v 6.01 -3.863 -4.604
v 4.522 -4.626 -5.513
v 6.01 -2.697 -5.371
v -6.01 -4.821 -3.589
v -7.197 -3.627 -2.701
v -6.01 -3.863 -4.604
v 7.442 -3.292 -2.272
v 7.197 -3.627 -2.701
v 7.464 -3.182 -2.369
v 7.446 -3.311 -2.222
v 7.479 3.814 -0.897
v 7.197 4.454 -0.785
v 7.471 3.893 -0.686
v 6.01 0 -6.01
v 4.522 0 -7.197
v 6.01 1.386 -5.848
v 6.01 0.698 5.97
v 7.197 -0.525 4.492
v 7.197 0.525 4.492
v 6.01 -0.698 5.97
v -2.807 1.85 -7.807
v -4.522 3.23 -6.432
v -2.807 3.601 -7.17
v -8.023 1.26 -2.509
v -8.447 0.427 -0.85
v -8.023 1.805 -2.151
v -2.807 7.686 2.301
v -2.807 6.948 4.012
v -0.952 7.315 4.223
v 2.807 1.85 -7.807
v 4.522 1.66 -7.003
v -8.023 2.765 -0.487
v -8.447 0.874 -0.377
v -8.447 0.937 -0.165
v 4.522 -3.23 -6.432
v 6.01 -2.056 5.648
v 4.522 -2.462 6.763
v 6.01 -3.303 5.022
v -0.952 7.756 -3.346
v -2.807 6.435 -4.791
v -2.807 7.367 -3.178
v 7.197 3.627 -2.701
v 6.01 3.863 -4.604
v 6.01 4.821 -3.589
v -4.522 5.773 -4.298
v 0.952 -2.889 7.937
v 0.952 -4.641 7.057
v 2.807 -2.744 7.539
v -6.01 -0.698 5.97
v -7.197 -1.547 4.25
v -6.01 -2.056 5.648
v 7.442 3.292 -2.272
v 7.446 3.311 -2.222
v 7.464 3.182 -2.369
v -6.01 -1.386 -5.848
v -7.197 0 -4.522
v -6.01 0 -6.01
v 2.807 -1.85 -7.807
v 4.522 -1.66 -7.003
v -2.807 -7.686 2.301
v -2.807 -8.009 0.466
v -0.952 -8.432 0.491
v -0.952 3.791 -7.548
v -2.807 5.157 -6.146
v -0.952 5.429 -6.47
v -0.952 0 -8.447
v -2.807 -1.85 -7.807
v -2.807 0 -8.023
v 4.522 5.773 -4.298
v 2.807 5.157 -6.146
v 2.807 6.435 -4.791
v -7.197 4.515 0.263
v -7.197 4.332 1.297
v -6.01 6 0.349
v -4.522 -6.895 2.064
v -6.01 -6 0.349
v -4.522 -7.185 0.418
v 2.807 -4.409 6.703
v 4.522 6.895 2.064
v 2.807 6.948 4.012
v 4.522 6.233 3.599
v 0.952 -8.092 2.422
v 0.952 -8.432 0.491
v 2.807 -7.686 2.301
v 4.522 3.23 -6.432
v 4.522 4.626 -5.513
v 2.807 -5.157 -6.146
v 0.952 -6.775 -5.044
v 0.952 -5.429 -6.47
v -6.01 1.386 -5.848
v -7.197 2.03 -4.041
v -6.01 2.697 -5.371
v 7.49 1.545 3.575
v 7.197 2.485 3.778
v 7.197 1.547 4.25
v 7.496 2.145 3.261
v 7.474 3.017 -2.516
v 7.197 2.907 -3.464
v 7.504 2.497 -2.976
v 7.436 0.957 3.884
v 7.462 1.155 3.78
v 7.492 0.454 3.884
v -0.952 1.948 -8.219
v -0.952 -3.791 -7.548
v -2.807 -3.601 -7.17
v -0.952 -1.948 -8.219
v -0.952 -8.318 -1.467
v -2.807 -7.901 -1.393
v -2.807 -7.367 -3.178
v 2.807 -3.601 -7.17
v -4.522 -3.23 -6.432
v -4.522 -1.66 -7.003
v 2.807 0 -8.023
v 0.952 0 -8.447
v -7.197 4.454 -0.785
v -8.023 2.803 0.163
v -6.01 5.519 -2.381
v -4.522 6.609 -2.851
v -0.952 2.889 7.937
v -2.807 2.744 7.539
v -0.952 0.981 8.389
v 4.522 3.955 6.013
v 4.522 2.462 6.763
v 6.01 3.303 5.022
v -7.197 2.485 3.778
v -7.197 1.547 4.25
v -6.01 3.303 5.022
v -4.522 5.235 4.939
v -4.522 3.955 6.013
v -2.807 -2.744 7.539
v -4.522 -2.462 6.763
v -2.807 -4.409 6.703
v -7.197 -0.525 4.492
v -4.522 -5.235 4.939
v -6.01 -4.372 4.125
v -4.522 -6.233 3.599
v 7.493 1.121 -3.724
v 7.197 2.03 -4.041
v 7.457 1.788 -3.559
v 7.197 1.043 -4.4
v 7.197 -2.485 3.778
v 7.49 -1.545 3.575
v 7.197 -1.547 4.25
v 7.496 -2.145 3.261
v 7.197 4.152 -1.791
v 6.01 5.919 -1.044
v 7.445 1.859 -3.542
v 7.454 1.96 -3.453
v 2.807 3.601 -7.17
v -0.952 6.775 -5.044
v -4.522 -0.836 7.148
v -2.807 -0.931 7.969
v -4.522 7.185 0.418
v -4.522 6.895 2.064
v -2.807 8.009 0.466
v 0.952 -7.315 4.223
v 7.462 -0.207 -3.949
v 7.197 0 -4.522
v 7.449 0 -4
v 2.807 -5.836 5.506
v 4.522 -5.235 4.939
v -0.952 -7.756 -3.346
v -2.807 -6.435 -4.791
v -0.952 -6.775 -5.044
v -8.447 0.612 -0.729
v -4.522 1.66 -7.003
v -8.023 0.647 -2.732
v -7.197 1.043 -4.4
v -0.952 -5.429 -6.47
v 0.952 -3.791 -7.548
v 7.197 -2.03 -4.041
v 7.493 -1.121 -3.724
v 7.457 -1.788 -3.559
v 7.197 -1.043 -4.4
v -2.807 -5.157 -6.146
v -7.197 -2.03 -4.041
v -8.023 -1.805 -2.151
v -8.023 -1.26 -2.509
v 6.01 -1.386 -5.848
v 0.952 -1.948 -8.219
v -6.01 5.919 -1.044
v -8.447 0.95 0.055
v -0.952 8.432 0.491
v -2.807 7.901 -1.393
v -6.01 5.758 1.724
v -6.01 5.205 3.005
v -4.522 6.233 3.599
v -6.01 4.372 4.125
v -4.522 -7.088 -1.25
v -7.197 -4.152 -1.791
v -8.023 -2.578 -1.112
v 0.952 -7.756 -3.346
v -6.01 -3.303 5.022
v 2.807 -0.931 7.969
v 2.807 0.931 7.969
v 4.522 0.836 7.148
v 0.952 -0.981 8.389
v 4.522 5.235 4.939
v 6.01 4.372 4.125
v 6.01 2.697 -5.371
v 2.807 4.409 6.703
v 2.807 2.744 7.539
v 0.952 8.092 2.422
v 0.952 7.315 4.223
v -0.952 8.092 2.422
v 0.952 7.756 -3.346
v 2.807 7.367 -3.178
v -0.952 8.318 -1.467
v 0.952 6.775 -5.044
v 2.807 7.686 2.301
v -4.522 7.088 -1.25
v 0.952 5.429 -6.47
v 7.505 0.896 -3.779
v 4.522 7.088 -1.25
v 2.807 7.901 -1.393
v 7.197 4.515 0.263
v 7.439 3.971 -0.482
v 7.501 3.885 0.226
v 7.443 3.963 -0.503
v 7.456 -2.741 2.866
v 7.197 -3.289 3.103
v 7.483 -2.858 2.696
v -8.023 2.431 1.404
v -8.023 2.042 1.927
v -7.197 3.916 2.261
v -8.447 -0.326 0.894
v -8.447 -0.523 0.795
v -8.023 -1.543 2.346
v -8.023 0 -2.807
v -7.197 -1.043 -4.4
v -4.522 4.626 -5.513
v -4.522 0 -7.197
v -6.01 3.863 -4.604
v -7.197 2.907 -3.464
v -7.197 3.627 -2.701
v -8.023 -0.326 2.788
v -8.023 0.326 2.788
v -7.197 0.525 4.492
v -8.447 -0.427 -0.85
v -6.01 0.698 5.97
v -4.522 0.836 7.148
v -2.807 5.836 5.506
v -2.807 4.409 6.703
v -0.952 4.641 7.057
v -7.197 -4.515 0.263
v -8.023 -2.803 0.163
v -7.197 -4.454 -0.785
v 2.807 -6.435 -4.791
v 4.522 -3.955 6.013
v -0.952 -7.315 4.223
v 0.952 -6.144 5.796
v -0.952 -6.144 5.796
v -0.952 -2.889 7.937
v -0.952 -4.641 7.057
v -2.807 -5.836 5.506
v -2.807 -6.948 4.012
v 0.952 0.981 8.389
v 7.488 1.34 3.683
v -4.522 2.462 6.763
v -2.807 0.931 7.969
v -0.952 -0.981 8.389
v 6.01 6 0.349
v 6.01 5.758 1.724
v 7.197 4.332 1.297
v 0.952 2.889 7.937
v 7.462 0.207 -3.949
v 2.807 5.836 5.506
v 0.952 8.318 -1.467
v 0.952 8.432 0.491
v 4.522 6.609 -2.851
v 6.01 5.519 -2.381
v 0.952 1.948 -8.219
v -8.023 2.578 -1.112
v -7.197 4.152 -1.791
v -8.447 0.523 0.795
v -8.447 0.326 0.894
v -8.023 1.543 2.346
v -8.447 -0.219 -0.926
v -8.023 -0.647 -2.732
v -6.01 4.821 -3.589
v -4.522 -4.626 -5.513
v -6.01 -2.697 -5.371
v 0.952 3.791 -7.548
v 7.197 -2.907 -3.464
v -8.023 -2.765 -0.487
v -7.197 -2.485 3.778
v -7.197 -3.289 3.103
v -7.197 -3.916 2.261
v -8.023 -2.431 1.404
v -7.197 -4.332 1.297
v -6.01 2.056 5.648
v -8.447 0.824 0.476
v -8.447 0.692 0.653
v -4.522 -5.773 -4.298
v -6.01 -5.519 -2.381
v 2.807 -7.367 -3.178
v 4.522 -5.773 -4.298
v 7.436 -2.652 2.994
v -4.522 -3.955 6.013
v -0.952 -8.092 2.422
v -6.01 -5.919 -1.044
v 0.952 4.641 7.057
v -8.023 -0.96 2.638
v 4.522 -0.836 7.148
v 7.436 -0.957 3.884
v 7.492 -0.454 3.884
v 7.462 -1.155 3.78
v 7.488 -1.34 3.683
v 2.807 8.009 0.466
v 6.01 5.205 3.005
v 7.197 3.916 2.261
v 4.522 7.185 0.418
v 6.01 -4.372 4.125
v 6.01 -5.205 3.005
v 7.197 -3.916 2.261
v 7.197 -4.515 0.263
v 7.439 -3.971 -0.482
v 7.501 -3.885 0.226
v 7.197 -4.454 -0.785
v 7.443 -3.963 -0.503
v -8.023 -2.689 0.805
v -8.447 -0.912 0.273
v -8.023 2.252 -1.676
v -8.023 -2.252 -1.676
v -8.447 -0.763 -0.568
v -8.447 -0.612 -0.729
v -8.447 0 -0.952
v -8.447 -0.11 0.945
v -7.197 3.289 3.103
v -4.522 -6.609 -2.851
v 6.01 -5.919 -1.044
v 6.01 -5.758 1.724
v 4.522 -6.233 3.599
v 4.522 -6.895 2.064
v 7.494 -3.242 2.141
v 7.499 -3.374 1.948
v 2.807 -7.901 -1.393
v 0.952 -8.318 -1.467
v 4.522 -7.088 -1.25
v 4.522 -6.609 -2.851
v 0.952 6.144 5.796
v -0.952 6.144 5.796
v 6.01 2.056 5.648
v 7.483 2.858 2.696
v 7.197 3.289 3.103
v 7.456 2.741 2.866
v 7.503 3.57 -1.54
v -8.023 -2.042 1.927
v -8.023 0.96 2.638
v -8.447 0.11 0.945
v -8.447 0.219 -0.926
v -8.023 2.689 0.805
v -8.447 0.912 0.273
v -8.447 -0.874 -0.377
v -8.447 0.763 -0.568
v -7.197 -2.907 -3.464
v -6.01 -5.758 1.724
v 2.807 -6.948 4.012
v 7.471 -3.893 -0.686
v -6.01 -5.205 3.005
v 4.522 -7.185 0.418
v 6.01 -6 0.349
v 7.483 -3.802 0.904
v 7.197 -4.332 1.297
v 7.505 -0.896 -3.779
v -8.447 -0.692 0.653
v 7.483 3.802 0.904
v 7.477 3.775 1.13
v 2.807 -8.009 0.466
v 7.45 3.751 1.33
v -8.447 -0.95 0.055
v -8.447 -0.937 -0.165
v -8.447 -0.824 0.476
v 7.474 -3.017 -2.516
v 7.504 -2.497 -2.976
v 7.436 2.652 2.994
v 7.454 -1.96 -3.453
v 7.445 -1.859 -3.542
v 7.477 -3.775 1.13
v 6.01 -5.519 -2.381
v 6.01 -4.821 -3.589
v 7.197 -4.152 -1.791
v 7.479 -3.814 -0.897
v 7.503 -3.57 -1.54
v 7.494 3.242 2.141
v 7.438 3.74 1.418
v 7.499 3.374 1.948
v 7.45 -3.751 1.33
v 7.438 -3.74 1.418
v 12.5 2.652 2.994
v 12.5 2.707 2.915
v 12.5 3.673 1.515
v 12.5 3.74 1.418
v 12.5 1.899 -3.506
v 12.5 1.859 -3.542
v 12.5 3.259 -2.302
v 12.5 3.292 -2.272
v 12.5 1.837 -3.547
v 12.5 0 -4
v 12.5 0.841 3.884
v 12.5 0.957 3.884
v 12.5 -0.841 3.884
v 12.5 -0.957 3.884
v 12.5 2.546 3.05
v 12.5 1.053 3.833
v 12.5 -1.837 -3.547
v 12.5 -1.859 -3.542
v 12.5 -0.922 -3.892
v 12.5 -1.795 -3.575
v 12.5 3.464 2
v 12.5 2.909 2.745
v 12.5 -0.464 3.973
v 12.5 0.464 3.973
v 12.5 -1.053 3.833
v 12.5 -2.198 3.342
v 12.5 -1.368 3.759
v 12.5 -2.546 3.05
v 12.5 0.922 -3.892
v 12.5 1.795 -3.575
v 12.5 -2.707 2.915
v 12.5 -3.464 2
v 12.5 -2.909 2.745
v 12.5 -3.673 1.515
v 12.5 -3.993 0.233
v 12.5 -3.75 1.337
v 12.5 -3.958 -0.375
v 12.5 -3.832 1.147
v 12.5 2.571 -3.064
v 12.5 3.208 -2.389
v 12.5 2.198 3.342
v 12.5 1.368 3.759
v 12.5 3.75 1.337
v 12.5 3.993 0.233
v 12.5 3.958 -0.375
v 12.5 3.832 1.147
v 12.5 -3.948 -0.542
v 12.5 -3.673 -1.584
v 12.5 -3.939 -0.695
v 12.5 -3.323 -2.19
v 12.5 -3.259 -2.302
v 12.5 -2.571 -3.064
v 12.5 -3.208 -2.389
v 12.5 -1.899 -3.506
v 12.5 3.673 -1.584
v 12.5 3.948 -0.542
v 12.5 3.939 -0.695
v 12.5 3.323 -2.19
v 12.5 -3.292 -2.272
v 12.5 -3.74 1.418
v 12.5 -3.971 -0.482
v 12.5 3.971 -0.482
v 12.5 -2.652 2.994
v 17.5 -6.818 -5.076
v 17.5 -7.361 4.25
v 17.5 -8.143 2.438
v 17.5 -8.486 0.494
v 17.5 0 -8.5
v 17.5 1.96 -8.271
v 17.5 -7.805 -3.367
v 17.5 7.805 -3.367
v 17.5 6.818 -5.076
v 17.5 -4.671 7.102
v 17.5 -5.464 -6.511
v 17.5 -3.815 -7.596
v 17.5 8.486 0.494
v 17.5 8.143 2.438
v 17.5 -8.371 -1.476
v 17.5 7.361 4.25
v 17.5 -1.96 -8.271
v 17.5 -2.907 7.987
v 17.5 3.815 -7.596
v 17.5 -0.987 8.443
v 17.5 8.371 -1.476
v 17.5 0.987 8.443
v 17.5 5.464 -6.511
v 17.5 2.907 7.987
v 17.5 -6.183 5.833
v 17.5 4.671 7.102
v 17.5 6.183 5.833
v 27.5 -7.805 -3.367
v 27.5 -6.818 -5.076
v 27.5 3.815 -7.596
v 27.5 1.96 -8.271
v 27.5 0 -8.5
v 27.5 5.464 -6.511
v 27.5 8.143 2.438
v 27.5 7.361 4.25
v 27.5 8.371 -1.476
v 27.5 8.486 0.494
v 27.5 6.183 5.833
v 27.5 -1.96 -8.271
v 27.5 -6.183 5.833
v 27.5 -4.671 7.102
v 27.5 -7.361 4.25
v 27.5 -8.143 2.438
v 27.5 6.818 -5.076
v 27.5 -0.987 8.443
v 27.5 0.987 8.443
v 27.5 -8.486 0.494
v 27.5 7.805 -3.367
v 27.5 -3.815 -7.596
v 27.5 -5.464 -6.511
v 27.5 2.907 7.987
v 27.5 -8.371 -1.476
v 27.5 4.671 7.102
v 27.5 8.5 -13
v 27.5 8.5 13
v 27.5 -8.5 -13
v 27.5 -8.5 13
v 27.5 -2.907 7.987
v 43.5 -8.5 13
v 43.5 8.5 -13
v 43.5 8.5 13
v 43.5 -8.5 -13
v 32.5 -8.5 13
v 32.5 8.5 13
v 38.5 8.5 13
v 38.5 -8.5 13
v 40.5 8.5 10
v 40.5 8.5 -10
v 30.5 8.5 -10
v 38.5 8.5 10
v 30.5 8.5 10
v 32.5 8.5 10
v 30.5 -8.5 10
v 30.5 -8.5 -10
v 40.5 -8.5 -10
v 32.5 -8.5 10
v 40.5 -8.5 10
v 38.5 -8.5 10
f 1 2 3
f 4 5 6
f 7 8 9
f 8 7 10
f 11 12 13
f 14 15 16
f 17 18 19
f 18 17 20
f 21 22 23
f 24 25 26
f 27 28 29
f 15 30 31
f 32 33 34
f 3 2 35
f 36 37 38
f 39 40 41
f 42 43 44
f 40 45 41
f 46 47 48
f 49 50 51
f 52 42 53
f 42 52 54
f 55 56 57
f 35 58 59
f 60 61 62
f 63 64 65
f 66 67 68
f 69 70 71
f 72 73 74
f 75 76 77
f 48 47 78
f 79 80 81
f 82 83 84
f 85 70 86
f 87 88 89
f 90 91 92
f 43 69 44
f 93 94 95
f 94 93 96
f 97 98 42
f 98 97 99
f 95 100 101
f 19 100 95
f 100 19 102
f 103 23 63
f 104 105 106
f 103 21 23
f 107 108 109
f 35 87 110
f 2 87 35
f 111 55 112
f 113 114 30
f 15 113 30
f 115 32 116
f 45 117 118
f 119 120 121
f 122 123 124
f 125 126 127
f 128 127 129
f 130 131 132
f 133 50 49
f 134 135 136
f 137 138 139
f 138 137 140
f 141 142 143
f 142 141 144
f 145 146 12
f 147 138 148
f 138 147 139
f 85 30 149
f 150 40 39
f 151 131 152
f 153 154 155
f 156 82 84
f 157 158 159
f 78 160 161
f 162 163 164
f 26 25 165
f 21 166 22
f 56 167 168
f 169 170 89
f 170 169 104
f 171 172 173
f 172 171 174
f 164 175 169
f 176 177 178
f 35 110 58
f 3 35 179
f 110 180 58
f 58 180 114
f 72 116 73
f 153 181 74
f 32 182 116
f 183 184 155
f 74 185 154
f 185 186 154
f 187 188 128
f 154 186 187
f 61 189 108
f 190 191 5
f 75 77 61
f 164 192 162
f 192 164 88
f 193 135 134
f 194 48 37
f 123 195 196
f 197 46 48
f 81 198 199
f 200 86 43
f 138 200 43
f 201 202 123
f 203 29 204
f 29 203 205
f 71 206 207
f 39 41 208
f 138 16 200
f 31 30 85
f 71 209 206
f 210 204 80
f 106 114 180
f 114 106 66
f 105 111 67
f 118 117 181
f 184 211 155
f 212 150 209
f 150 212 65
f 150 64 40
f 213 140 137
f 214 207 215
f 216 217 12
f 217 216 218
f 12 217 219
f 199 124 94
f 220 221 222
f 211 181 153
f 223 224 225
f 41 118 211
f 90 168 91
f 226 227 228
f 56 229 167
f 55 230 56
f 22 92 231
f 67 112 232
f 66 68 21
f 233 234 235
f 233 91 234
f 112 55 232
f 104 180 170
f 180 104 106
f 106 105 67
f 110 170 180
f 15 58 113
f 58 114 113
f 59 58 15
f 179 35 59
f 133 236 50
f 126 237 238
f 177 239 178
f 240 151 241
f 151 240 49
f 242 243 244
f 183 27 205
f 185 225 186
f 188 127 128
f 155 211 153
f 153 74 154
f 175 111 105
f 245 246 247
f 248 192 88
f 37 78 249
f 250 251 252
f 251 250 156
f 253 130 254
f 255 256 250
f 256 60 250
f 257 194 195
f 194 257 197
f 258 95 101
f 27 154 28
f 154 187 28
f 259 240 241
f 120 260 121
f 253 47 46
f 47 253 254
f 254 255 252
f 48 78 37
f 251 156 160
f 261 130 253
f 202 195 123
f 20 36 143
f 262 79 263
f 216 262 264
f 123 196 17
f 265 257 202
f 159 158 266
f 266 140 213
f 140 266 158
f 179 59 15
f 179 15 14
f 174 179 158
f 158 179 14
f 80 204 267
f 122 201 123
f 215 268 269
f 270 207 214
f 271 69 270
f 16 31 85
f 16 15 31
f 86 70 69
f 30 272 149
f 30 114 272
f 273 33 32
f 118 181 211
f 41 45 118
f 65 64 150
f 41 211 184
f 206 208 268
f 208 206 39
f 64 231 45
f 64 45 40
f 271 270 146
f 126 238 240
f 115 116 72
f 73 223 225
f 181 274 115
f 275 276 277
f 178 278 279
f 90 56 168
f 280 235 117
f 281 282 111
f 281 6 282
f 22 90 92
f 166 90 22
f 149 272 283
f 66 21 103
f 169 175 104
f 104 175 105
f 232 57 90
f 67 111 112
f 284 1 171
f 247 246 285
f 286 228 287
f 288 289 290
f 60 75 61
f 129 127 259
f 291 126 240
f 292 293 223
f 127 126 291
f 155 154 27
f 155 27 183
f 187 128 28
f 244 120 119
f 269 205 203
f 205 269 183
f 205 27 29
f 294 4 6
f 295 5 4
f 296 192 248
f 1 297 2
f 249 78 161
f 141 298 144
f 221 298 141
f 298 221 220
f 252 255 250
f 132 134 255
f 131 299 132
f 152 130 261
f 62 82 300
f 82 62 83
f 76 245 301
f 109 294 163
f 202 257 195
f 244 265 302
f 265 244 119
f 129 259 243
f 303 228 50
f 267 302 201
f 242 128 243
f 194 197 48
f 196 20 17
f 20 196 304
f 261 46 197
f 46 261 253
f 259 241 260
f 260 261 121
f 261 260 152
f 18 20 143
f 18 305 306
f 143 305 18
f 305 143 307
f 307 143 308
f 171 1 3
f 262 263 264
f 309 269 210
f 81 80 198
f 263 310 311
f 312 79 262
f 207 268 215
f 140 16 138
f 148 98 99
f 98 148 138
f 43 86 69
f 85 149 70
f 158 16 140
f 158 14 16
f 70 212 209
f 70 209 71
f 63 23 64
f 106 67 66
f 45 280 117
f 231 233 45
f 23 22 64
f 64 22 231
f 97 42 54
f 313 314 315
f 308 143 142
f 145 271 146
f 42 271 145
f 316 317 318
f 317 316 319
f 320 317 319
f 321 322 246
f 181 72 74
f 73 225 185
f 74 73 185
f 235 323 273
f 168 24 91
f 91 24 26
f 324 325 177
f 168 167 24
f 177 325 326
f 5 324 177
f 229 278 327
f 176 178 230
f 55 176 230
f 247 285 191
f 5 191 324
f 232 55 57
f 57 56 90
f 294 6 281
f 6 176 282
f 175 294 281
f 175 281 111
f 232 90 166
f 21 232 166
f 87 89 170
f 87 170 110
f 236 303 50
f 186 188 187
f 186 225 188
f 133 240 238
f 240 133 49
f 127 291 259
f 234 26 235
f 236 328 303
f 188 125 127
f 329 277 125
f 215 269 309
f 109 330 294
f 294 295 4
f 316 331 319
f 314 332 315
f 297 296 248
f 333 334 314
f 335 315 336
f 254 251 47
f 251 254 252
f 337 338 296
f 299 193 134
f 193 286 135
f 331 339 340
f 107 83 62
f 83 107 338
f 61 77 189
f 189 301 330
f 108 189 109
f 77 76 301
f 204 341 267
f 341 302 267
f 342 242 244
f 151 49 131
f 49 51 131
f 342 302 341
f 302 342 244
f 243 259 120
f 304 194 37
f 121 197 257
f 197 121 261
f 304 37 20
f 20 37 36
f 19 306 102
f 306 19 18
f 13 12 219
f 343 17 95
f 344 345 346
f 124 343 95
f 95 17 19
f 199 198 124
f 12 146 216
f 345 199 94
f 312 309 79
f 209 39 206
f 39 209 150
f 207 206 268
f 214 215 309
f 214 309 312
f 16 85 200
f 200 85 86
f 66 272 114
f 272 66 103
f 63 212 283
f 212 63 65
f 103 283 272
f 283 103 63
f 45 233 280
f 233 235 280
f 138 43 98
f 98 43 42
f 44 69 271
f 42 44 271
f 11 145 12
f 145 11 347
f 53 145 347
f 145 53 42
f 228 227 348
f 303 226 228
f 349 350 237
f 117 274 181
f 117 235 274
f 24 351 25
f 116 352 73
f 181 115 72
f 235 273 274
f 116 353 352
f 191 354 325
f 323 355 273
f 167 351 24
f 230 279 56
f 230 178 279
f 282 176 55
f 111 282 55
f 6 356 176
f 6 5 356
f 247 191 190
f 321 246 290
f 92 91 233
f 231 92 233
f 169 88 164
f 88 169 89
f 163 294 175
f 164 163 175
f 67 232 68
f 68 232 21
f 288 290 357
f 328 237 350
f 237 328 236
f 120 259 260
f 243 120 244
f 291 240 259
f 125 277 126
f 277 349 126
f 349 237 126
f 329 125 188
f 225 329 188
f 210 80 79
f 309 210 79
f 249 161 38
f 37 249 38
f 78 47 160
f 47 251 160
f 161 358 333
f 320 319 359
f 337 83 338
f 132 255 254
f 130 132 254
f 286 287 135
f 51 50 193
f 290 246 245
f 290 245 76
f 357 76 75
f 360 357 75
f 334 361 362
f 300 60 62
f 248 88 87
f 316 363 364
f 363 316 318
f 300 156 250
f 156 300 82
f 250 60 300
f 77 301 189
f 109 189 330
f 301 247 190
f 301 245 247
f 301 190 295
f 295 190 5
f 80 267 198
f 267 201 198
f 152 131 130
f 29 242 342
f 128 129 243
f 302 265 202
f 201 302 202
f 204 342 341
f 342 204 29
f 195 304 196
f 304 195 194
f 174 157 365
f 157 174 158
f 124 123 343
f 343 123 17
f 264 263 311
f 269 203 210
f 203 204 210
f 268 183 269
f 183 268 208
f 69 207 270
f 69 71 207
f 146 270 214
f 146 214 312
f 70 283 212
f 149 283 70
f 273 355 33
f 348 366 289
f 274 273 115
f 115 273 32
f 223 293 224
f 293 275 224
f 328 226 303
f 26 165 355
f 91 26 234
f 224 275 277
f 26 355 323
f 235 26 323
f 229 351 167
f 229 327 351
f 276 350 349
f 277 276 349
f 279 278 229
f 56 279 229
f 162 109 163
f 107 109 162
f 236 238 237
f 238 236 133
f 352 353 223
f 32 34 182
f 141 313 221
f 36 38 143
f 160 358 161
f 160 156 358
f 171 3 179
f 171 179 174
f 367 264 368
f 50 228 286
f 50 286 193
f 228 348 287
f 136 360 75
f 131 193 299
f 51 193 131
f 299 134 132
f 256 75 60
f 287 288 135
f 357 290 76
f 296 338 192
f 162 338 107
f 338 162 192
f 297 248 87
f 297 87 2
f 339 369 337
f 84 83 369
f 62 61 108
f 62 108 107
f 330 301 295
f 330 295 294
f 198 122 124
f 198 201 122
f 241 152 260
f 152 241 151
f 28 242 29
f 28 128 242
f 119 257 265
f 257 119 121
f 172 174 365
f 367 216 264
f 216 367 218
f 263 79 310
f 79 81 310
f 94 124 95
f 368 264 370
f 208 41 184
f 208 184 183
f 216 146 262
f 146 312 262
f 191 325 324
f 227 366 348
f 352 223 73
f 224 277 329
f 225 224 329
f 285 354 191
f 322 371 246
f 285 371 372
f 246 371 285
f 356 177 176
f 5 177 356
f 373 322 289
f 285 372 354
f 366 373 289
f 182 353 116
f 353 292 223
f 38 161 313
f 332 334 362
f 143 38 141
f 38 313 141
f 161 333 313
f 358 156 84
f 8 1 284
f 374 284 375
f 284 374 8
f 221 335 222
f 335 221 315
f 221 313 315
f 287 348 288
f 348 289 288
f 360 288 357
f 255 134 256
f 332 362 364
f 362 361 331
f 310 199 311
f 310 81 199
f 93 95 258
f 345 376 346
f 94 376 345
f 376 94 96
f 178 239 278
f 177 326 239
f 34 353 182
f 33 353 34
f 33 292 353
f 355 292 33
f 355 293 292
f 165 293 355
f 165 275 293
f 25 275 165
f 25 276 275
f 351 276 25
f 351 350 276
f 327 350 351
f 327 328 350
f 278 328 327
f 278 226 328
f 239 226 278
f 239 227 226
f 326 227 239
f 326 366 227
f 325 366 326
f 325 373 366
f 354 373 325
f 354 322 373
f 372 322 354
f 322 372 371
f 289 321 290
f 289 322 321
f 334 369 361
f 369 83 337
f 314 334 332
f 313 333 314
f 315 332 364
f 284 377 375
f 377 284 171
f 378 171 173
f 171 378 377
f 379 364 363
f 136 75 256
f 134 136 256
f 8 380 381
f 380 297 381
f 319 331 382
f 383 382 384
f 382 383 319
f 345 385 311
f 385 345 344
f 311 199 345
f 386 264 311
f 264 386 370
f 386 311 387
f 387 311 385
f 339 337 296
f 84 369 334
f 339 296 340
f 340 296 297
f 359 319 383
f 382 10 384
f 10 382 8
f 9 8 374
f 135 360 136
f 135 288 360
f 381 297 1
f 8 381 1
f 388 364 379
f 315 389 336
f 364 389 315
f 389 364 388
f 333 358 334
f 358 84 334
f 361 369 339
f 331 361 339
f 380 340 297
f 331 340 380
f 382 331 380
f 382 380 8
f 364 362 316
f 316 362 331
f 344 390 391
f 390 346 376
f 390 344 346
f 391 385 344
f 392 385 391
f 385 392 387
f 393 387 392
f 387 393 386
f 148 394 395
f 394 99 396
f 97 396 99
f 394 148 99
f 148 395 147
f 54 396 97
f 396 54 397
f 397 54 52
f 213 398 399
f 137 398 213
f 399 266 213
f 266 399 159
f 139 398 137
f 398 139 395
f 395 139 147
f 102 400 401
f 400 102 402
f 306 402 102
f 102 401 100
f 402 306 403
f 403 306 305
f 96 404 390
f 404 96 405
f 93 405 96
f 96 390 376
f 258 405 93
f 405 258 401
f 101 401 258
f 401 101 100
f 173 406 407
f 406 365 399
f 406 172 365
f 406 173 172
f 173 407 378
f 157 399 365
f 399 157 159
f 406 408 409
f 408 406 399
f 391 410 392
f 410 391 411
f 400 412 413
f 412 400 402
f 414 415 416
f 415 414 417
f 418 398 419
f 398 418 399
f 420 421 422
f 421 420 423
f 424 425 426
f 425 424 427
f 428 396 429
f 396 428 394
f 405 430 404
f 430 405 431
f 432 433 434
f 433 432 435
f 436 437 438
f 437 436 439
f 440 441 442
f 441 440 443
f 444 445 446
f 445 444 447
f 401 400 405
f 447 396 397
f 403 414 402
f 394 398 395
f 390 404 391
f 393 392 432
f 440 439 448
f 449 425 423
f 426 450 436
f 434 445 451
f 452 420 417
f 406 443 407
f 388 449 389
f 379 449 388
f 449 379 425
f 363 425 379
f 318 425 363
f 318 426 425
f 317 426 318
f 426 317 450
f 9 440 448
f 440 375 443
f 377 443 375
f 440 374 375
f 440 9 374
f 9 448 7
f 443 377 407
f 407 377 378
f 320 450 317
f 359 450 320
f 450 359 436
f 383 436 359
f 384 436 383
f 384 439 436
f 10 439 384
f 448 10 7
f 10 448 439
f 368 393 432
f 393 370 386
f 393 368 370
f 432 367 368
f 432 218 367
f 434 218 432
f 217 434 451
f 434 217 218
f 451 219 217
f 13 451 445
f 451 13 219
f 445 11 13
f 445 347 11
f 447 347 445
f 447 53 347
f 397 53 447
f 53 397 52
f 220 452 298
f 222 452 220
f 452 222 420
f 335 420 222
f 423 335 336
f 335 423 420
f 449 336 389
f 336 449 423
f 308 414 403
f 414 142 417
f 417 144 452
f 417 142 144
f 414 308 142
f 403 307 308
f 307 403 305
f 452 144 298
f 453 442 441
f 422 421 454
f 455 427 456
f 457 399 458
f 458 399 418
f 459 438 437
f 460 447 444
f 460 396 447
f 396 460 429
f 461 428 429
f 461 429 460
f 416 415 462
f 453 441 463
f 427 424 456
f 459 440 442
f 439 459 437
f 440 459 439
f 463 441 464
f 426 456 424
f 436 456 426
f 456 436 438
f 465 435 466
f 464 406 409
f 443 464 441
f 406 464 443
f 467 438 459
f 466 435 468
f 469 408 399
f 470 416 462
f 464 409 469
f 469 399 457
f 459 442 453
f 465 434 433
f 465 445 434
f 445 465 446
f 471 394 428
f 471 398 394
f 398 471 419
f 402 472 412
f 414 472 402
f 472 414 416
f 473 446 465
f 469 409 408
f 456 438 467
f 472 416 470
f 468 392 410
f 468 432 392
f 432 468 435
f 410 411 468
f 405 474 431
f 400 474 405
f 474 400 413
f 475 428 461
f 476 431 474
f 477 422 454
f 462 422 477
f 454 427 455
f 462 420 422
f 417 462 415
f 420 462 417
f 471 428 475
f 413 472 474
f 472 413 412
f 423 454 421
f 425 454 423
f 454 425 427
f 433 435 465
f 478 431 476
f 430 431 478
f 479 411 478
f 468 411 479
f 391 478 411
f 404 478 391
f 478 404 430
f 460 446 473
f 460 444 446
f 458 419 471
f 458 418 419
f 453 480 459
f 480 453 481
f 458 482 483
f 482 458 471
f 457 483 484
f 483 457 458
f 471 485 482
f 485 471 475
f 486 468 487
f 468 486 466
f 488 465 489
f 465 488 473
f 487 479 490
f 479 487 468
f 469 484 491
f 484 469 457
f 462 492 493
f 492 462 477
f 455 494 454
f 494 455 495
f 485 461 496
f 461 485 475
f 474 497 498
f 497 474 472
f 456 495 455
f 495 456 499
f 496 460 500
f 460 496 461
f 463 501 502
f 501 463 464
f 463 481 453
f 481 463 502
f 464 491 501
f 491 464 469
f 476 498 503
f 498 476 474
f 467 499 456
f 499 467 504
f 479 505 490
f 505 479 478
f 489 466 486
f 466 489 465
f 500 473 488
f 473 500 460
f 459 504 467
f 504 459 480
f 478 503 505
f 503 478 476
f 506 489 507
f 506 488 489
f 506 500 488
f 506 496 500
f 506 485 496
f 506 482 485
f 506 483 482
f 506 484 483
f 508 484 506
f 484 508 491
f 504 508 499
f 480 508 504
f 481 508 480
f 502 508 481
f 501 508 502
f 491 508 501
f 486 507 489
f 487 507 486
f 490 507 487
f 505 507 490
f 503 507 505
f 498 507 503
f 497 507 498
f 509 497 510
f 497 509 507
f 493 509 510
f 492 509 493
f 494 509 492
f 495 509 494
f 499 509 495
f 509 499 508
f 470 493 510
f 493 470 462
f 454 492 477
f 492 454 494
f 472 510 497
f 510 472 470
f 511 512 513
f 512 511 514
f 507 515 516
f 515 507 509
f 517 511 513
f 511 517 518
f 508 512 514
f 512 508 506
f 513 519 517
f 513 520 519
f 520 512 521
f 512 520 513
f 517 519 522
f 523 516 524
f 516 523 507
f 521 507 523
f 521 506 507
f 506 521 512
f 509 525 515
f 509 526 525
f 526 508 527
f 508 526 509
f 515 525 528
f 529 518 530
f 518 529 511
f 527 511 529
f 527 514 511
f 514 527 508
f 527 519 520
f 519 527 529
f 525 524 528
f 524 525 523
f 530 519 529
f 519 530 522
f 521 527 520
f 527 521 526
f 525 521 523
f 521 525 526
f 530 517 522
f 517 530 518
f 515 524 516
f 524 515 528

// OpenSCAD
rotate([0,90,0]){

sphere(d = 17);
cylinder(d=8, h=17/2+4);
translate([0,0,17/2+4])
    cylinder(d1=8, d2=17, h=5);
translate([0,0,17/2+4+5])
    cylinder(d1=17, d2=17, h=10);    
    
}

translate([17/2+4+5+10,-17/2,-26/2]){
    difference(){
    cube([16,17,26]);
    translate([3,0,3])
        cube([10,17,20]);    
    translate([5,0,23])
        cube([6,17,3]);    
    }
}
